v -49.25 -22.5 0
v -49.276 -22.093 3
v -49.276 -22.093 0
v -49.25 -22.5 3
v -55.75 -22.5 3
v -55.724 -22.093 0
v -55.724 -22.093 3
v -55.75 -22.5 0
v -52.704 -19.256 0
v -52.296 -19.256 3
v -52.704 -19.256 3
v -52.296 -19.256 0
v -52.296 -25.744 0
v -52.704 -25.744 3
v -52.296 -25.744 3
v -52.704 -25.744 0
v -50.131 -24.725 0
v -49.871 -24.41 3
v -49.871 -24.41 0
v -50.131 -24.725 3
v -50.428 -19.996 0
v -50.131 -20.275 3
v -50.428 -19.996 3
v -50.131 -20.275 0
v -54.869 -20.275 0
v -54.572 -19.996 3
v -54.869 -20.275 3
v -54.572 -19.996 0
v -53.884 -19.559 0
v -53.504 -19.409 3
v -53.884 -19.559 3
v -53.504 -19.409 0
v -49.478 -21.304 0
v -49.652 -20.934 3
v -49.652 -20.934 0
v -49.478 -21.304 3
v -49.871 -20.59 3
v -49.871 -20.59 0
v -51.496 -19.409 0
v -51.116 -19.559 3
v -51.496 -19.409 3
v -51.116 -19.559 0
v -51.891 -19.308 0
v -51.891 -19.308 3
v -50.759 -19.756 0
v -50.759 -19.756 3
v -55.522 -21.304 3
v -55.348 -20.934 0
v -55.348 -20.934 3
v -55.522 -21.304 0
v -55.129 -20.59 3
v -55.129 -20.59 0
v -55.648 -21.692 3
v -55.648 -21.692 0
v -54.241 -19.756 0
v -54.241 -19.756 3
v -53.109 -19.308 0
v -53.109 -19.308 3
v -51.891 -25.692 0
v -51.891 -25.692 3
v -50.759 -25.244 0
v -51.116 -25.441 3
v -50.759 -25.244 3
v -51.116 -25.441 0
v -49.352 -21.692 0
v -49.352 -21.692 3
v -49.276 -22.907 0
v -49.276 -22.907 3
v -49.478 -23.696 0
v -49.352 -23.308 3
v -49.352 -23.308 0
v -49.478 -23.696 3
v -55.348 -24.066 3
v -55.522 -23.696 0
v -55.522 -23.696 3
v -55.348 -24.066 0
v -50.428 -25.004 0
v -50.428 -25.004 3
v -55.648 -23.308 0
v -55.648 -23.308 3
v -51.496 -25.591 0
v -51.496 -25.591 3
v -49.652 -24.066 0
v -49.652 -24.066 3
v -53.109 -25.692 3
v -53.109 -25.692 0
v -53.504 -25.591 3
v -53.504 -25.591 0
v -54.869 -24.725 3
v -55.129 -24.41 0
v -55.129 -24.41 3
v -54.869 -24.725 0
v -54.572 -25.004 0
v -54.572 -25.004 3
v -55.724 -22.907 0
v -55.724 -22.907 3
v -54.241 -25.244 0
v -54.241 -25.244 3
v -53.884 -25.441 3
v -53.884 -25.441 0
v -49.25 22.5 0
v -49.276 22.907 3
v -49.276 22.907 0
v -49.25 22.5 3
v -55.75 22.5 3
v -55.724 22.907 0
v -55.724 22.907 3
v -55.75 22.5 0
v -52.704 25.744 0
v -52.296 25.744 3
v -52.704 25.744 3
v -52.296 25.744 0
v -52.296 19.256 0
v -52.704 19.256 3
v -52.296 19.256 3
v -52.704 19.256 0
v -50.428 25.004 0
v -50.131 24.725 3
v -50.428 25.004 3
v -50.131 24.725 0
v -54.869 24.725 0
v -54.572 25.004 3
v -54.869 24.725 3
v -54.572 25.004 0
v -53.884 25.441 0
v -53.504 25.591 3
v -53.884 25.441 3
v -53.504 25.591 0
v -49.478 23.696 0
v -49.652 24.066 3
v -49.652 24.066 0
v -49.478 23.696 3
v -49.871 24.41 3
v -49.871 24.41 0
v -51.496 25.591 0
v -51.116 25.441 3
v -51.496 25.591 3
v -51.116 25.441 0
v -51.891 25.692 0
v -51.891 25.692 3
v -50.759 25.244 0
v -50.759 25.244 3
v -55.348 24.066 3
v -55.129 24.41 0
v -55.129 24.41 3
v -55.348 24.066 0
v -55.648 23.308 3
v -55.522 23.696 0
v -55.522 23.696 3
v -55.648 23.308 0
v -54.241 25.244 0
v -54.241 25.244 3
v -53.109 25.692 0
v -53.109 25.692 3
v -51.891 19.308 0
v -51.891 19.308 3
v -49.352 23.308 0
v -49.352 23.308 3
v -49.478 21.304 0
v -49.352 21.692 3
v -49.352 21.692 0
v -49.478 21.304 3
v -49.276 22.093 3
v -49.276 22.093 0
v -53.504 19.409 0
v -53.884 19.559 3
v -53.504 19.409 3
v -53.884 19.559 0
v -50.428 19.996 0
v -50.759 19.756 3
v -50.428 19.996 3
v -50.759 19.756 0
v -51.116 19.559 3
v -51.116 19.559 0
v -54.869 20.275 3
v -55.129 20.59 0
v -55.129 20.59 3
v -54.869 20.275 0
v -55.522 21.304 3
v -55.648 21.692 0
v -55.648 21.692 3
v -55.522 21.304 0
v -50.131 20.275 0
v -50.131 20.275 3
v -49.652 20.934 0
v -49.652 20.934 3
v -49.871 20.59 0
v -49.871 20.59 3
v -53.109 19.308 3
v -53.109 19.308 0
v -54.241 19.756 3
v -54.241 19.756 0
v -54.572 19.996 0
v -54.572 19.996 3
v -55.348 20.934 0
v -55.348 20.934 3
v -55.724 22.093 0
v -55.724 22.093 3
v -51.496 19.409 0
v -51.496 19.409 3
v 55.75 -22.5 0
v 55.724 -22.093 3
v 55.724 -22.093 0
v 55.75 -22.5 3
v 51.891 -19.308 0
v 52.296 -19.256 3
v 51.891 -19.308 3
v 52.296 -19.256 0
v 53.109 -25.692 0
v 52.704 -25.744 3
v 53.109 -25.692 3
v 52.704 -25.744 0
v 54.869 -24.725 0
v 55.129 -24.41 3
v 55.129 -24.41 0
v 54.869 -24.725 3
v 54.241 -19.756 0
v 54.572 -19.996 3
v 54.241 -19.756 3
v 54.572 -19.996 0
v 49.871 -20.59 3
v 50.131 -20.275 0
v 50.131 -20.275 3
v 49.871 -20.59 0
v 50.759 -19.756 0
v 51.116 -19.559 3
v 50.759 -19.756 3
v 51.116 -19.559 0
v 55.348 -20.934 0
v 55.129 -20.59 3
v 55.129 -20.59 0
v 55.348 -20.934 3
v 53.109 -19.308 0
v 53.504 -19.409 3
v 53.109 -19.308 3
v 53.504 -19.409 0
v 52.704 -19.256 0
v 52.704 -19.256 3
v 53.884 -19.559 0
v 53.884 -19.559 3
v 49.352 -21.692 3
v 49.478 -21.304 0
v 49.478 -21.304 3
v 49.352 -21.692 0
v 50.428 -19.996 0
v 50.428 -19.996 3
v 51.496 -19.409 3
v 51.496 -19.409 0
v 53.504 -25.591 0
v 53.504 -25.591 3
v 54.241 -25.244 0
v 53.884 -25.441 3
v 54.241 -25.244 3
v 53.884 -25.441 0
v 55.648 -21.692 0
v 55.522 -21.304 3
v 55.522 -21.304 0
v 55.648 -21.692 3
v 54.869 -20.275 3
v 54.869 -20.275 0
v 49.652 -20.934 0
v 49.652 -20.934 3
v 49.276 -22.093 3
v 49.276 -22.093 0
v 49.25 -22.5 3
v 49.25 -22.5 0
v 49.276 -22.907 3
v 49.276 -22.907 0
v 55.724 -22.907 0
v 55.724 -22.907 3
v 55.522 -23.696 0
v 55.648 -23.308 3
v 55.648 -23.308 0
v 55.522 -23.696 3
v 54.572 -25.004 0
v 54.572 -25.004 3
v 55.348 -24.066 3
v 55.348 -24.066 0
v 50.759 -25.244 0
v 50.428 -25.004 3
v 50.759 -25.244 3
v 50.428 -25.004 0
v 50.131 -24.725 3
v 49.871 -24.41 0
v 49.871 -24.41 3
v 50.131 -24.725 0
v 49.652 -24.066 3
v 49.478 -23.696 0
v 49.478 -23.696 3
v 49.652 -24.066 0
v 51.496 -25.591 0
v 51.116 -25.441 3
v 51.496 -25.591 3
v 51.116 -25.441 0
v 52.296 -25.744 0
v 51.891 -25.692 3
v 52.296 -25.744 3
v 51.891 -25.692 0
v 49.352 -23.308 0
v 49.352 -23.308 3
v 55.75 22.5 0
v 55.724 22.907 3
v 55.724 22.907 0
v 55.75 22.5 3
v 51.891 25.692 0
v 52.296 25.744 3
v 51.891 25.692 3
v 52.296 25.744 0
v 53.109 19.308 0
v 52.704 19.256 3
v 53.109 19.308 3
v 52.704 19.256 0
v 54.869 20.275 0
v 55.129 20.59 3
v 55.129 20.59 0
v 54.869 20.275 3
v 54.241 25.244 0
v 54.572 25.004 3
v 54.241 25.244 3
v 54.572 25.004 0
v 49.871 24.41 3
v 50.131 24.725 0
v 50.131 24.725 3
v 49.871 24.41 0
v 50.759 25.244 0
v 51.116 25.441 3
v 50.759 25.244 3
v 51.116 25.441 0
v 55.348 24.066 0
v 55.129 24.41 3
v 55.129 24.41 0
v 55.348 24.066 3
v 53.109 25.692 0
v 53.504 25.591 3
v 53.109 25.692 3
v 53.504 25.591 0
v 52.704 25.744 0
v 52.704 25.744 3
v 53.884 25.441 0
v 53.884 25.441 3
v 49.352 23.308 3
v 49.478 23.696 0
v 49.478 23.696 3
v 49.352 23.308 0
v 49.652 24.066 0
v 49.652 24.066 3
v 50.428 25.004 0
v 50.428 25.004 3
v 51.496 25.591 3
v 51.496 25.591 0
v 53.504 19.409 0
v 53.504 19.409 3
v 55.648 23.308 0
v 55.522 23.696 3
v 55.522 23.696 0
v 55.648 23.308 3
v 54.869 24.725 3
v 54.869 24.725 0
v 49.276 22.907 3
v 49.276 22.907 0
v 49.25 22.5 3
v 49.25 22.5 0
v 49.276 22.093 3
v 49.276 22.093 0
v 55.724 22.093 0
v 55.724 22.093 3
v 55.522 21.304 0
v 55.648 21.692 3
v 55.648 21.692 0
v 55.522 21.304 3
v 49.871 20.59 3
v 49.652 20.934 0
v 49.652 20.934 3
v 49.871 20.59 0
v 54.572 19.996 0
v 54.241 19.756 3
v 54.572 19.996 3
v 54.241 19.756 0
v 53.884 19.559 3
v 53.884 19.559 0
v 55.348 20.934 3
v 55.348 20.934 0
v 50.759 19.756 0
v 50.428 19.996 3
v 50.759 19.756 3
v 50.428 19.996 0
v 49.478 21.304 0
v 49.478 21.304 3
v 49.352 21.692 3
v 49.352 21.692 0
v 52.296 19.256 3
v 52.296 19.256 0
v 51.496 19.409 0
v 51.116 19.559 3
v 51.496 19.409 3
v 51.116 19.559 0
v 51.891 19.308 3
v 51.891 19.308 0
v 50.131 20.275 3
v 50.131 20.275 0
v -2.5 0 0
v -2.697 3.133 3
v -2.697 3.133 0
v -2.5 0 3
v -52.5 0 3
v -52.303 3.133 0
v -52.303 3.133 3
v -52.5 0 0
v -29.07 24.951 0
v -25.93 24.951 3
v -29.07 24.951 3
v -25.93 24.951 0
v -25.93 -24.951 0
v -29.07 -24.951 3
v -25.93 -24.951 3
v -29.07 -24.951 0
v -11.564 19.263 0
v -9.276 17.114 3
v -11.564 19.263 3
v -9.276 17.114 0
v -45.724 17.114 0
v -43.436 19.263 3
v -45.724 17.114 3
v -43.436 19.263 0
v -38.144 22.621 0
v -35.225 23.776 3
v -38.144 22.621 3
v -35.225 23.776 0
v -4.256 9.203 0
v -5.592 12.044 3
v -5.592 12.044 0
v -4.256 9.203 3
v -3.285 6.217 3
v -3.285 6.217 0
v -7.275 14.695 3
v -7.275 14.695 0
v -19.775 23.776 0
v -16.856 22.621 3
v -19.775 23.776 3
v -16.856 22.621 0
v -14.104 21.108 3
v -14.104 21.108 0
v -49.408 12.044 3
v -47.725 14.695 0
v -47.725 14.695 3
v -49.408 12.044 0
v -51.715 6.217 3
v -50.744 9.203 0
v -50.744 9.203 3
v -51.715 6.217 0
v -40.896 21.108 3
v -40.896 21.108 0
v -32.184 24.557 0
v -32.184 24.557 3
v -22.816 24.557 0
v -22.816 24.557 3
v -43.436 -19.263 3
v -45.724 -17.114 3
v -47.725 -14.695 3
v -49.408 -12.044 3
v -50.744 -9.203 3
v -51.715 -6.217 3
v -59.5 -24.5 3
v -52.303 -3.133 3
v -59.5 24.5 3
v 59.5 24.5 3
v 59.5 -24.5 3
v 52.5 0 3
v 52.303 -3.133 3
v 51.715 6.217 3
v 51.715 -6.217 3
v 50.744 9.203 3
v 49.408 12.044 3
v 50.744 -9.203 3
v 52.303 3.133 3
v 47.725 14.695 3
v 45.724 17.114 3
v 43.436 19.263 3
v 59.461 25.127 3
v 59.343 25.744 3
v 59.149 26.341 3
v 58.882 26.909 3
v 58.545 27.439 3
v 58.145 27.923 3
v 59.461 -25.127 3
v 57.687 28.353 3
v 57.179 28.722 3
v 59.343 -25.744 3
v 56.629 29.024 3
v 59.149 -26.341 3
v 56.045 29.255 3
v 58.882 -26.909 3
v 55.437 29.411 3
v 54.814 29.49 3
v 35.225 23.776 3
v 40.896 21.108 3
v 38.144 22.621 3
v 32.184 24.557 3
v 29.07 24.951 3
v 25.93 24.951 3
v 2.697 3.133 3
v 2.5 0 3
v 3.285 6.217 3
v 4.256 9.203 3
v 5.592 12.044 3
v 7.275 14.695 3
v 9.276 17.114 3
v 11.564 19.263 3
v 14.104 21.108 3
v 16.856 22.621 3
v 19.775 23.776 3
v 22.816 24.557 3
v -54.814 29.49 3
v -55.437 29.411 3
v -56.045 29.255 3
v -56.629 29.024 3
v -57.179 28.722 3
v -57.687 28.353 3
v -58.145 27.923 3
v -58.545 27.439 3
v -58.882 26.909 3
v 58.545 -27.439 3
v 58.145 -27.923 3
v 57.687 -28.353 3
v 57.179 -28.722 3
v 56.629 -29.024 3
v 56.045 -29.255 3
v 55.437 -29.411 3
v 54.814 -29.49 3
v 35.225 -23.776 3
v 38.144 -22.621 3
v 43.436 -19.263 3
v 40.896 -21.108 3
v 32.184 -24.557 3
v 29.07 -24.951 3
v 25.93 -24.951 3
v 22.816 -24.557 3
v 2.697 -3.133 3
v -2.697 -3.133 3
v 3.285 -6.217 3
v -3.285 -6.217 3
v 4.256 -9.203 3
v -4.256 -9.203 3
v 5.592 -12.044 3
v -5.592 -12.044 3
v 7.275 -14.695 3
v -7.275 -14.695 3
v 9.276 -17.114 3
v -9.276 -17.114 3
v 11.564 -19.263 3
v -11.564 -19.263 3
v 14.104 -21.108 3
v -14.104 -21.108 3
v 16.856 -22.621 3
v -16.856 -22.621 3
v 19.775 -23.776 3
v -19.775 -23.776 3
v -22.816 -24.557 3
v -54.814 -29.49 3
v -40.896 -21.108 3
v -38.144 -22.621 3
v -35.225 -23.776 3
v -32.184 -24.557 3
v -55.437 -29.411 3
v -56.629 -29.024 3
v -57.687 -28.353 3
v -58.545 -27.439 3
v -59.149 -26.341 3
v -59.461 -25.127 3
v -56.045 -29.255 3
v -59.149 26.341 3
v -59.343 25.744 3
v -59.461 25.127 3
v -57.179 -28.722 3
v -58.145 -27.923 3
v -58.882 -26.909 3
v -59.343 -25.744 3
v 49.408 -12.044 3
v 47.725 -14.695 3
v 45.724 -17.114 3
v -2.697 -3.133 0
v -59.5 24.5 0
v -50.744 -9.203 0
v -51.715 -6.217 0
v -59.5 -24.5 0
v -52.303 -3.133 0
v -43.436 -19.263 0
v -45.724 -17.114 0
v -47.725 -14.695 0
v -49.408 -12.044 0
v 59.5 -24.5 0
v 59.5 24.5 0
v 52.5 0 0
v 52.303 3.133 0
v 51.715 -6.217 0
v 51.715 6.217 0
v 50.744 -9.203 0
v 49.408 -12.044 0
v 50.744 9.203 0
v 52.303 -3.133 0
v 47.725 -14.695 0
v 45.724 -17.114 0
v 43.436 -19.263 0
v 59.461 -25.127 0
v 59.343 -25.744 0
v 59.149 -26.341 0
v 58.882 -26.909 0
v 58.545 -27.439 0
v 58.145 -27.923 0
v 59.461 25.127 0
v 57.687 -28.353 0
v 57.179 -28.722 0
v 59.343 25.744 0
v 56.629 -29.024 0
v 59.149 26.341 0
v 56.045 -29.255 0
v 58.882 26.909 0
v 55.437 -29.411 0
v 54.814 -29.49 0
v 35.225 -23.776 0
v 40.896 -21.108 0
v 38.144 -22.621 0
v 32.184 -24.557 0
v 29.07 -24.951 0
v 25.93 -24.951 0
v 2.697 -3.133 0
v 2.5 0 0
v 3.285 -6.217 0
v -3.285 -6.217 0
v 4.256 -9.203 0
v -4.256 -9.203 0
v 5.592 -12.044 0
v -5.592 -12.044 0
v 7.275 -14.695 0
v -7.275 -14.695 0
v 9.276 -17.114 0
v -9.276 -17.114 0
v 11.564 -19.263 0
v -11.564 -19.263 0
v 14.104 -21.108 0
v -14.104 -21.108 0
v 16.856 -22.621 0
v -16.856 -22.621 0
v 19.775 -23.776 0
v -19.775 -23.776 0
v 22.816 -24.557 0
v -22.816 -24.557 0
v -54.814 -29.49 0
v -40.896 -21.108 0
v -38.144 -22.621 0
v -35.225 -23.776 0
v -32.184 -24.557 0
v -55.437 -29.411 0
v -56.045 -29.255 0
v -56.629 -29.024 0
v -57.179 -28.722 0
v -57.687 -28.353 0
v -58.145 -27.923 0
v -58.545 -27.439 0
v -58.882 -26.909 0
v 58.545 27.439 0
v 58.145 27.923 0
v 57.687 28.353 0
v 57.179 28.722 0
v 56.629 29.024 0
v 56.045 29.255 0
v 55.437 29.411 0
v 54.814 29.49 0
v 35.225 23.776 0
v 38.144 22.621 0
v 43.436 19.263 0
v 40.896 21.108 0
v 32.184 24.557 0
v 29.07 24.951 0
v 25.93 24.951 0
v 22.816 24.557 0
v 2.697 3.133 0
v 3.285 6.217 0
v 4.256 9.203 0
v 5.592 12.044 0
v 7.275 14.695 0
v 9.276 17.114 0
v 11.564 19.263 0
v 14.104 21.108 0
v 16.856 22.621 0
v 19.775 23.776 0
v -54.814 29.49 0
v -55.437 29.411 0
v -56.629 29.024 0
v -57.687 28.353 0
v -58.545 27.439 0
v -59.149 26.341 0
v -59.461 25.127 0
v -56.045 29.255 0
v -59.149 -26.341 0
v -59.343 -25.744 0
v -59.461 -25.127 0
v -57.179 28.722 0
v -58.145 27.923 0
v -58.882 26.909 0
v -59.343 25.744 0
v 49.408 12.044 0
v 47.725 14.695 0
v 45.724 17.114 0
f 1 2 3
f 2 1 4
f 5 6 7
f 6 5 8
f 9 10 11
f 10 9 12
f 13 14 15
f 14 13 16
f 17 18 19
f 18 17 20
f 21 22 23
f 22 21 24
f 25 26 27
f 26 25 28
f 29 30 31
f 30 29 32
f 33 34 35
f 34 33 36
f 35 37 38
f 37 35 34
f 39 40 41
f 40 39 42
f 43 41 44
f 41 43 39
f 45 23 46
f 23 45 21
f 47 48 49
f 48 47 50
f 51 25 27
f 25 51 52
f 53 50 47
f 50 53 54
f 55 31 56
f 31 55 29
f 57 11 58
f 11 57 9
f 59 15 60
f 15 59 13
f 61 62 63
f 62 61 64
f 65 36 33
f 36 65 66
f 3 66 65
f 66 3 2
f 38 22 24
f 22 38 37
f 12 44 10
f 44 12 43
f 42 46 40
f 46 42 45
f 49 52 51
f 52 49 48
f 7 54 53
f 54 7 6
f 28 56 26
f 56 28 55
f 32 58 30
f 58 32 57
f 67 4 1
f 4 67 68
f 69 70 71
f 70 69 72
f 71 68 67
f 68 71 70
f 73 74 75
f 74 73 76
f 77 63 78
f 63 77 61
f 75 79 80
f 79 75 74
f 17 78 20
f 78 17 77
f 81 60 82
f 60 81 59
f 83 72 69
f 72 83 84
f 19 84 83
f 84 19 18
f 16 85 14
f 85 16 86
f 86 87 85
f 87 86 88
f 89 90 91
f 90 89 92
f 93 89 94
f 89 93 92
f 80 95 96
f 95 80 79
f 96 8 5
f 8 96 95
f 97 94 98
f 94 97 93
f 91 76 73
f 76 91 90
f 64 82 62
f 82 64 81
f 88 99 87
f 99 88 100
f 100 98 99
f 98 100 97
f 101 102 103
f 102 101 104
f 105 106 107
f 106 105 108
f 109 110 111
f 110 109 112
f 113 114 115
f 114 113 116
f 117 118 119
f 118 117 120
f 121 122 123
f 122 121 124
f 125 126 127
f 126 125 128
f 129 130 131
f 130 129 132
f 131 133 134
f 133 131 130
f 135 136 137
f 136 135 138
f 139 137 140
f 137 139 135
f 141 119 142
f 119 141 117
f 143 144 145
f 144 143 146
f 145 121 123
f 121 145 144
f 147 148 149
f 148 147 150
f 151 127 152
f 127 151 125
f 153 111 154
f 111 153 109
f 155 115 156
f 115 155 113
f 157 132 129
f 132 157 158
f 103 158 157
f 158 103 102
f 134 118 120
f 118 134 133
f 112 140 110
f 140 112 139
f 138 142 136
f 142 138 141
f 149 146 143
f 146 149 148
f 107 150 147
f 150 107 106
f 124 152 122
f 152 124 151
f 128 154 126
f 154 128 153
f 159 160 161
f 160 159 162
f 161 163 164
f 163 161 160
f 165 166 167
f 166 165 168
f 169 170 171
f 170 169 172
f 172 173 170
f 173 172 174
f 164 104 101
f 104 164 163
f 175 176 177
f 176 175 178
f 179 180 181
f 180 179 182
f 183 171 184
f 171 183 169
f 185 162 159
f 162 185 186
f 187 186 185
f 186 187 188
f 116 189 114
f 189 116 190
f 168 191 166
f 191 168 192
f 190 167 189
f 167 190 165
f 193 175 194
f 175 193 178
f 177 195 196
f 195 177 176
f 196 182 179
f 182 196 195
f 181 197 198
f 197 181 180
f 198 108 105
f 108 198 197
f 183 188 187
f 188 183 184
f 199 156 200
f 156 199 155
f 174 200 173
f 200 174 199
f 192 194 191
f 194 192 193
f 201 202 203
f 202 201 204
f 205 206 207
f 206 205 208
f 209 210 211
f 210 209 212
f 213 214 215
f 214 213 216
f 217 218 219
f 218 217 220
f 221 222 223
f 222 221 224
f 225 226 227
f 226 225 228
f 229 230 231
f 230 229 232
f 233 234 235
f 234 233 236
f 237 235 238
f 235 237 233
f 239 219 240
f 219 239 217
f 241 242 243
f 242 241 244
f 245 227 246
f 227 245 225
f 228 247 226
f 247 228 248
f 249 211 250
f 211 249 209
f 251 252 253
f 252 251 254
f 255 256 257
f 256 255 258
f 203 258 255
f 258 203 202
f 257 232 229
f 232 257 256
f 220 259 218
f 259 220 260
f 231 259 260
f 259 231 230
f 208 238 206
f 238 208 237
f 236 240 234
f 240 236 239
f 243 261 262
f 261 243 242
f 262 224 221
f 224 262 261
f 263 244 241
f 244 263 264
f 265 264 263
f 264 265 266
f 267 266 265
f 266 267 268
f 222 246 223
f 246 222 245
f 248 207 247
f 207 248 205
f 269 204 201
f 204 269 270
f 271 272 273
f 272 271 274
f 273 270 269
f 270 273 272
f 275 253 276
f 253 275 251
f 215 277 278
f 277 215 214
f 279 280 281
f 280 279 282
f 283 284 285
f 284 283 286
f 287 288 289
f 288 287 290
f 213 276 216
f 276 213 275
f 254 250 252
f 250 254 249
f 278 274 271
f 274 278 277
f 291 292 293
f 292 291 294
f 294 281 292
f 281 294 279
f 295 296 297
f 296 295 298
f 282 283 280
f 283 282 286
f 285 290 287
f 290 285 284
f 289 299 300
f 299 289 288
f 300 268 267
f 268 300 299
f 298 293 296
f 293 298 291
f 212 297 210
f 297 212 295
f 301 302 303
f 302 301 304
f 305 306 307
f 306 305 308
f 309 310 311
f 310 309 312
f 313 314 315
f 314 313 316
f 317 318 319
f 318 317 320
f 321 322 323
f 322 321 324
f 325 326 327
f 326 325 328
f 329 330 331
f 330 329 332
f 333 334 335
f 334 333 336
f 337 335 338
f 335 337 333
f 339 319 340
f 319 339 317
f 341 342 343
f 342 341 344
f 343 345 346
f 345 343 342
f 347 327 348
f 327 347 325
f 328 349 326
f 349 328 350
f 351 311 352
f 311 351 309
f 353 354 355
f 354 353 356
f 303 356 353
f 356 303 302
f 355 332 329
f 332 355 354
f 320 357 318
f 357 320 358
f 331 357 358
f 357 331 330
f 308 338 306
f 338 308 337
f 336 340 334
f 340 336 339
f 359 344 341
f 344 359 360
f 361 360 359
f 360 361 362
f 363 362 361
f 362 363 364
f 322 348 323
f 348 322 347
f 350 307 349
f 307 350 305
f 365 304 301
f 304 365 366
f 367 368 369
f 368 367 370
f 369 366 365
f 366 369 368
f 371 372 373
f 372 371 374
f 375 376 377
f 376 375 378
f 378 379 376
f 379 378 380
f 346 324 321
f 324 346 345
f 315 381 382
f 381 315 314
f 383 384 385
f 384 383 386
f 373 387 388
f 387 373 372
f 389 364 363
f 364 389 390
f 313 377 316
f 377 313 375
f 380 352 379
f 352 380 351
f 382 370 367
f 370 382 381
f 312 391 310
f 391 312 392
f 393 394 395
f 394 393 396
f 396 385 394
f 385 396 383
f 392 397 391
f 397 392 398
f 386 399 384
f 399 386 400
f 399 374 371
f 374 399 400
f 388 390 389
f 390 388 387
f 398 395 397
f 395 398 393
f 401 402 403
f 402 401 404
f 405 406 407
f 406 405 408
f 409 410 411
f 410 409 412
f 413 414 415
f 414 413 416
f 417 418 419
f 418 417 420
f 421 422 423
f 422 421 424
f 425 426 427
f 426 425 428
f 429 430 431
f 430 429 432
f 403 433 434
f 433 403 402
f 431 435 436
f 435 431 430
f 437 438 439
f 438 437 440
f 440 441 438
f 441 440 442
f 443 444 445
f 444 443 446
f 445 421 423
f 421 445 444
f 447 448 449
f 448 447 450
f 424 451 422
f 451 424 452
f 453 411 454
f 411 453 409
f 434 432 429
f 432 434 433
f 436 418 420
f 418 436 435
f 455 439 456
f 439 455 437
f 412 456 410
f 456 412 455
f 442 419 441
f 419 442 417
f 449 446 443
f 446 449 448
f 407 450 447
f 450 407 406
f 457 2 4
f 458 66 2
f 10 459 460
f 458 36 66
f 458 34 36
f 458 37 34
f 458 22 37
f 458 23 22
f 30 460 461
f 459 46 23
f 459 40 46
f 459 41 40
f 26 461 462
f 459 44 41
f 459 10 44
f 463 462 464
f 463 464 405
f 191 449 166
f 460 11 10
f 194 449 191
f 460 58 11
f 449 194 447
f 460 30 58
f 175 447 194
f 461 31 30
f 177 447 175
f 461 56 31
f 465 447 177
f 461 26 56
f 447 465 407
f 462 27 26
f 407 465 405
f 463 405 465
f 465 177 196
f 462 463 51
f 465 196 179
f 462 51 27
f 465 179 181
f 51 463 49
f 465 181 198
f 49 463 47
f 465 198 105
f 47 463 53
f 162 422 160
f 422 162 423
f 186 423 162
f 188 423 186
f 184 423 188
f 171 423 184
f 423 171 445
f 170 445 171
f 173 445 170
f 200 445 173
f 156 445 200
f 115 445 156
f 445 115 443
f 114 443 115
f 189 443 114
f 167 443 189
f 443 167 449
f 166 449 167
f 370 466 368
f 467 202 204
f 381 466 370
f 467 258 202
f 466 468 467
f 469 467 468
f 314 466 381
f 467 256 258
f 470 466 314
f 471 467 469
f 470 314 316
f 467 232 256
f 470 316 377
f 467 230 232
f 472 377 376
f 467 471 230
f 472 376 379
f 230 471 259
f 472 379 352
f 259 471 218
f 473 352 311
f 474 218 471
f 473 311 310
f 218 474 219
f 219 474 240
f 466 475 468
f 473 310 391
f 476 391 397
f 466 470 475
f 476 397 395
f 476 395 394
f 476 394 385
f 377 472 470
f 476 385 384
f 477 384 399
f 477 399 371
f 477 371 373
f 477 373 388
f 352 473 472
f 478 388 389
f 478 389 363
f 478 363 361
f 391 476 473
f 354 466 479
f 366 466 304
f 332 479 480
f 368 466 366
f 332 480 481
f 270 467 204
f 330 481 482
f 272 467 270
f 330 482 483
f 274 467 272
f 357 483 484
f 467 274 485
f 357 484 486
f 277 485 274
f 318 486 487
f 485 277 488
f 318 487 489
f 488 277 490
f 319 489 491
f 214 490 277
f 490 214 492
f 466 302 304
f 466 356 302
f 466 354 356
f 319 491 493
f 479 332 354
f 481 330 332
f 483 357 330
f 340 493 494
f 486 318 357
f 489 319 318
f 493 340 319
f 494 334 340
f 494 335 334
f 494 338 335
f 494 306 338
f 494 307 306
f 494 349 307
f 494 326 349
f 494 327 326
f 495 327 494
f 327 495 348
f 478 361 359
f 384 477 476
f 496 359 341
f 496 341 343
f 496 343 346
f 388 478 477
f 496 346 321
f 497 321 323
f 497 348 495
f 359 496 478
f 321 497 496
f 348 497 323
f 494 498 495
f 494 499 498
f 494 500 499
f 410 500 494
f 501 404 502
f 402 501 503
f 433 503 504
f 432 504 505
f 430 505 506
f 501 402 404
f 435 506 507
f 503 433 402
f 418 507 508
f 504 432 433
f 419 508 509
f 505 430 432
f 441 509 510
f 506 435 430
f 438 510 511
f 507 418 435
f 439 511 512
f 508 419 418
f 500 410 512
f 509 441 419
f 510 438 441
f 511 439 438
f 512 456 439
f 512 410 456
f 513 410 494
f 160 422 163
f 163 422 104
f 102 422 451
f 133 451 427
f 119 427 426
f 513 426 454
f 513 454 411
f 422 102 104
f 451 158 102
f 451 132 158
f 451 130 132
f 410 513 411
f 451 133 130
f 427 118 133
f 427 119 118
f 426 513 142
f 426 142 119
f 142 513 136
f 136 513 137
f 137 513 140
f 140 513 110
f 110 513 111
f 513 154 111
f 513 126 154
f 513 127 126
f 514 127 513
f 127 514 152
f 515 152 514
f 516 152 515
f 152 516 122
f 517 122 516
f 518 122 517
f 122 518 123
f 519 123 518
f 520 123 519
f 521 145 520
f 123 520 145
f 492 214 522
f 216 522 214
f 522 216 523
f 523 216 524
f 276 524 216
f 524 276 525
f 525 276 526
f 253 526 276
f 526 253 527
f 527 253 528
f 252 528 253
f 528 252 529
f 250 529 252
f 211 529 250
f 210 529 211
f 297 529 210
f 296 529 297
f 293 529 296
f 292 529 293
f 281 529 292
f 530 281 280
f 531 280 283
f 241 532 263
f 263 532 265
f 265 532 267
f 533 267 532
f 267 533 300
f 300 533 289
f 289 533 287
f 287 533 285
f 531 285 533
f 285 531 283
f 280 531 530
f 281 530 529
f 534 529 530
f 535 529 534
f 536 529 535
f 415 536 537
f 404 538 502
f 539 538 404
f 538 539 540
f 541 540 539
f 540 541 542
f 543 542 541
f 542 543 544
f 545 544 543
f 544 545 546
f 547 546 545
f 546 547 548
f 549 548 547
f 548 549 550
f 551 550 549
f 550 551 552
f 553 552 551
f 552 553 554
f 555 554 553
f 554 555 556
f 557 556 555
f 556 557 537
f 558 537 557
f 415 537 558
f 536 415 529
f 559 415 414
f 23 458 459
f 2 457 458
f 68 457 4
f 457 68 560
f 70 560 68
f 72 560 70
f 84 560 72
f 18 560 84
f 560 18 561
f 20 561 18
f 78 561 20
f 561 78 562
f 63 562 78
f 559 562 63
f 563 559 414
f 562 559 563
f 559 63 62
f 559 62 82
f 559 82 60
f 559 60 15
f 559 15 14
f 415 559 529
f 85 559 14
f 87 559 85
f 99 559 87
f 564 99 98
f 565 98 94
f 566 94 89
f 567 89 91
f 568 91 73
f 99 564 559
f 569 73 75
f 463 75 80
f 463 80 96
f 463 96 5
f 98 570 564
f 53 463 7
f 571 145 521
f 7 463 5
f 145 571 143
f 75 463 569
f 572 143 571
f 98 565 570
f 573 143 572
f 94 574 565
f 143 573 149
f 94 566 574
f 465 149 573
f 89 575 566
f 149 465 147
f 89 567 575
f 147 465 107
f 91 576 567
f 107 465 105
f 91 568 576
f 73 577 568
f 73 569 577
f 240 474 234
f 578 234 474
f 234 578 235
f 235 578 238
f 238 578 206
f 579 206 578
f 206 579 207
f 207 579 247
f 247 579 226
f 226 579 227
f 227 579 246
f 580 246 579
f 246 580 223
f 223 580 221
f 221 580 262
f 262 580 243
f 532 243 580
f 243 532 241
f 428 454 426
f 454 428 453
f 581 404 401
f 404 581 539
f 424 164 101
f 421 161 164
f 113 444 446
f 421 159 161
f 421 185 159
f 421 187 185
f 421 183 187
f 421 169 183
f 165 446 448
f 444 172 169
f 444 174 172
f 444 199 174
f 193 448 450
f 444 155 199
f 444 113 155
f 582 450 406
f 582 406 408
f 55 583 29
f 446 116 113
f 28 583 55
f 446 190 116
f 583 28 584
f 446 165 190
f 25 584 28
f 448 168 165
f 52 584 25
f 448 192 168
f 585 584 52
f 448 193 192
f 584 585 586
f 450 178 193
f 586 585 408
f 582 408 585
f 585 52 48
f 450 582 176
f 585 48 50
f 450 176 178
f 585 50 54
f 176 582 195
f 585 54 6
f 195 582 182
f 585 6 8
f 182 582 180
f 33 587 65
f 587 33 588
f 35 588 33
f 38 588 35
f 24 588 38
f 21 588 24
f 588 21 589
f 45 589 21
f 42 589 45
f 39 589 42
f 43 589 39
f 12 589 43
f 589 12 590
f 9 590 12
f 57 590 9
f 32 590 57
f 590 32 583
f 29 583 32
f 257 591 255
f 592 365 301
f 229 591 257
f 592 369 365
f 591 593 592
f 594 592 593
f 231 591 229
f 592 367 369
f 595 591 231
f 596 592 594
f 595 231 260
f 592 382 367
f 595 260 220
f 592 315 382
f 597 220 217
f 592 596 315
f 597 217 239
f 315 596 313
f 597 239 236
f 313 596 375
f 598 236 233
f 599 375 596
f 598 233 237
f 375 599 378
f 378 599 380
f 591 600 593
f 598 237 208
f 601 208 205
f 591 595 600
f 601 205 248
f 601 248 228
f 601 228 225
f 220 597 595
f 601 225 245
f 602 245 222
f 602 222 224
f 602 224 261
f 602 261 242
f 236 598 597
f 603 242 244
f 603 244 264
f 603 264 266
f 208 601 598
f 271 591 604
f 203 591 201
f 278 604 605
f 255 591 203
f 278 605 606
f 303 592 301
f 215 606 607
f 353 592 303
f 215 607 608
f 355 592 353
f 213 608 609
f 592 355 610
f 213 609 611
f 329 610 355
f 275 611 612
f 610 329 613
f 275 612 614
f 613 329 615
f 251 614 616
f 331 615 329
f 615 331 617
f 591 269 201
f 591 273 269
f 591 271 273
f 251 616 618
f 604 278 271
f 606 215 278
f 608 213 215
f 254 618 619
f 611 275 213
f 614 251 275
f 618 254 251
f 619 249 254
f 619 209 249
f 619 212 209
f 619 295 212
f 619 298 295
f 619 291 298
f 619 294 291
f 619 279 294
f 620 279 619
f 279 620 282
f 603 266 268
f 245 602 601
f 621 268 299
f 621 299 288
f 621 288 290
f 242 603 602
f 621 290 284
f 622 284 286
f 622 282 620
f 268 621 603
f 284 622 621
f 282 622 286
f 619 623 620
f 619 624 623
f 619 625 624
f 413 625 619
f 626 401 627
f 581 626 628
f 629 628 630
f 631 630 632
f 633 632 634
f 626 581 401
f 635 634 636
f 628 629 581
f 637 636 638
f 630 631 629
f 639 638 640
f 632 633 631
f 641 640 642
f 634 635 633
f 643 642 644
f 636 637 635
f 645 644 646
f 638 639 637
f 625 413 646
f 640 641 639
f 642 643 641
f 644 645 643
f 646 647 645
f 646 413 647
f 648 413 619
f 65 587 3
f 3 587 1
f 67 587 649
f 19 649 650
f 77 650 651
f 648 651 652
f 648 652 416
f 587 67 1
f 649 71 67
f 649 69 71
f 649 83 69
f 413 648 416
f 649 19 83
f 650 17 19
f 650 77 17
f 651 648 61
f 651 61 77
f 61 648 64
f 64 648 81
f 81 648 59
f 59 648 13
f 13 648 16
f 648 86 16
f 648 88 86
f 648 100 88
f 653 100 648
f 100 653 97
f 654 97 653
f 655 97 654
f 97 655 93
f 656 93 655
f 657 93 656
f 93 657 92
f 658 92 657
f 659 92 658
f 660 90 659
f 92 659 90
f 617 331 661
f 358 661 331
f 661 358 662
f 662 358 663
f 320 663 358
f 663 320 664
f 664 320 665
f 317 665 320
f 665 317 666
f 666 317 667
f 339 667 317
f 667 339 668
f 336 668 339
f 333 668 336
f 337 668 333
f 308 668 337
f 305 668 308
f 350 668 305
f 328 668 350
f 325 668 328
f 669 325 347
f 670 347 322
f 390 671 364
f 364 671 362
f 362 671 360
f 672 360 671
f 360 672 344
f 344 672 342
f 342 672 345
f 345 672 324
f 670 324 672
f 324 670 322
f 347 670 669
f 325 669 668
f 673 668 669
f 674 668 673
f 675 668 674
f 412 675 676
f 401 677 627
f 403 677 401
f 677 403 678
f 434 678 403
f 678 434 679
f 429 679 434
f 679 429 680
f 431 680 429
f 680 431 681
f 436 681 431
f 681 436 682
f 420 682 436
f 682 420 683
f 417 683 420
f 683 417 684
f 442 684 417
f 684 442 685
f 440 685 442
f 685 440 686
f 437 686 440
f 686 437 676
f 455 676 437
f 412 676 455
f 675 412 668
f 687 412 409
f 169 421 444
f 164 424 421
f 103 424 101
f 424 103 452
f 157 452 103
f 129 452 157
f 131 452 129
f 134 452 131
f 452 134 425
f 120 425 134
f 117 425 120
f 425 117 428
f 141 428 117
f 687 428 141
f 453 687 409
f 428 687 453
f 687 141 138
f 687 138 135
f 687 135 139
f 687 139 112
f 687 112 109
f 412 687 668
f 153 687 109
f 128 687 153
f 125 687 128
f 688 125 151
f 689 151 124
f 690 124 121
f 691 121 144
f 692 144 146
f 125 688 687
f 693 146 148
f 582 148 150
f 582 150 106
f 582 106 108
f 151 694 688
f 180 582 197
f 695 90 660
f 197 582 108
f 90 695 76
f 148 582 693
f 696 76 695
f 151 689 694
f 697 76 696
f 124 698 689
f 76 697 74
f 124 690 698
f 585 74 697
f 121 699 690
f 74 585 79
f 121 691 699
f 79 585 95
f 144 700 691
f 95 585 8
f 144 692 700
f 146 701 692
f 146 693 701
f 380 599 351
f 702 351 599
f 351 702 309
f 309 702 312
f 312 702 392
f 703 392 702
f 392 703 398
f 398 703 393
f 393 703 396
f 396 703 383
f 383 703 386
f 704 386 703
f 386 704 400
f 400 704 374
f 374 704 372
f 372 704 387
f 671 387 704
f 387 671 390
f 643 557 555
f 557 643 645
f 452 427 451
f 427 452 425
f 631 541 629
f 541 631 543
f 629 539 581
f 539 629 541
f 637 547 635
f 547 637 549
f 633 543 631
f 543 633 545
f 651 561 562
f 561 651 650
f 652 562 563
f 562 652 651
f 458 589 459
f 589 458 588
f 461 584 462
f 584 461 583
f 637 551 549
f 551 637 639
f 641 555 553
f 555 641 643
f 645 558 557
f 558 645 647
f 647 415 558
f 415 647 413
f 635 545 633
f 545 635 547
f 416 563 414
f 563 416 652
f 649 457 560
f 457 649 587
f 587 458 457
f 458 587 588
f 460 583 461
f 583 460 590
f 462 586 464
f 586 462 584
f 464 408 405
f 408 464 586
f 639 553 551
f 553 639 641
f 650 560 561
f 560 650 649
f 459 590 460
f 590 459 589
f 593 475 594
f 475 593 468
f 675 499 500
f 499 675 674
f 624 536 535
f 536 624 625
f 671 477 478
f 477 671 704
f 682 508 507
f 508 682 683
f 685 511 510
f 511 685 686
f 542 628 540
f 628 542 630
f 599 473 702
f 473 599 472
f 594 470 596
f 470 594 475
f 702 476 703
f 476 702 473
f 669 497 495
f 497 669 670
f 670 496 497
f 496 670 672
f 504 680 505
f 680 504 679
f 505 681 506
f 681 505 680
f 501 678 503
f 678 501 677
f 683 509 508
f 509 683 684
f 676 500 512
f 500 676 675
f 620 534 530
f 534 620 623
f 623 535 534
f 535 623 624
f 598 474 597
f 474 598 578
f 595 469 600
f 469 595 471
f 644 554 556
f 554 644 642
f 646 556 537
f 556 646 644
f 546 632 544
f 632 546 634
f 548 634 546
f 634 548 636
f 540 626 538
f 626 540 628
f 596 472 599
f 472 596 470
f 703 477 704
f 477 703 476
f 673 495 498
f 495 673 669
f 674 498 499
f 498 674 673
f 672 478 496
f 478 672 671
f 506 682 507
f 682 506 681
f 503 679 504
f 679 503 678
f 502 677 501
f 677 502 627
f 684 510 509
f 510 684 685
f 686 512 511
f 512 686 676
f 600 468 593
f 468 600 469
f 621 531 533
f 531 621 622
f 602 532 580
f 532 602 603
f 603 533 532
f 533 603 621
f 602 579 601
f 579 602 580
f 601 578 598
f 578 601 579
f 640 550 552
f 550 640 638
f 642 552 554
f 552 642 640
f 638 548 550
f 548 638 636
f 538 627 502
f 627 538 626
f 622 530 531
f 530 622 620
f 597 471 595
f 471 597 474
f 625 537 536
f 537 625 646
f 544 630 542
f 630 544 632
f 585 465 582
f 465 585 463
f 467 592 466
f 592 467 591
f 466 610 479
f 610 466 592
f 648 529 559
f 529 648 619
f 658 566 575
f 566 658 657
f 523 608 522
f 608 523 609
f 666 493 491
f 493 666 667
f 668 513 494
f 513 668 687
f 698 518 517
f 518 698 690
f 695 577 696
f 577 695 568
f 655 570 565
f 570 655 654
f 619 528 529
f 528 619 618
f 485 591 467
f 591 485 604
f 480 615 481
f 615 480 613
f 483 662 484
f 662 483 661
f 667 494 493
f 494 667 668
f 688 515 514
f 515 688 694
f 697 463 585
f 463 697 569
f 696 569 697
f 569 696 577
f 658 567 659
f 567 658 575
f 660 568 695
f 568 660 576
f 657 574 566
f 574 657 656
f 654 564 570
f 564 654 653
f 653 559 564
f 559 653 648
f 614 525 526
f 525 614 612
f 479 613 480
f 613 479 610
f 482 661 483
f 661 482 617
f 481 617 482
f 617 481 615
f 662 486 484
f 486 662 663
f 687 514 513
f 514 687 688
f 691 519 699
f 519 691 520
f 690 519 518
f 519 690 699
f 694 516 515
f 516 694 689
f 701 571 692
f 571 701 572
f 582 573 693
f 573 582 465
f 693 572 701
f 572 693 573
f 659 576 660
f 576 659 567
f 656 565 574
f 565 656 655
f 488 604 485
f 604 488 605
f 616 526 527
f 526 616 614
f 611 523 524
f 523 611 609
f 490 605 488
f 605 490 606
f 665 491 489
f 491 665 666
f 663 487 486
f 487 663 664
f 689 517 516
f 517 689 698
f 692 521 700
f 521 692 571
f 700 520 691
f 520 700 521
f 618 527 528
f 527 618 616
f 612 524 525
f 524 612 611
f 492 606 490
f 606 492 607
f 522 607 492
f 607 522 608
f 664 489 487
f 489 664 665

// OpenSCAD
$fn = 50;


difference() {
	union() {
		hull() {
			translate(v = [-54.5000000000, 24.5000000000, 0]) {
				cylinder(h = 3, r = 5);
			}
			translate(v = [54.5000000000, 24.5000000000, 0]) {
				cylinder(h = 3, r = 5);
			}
			translate(v = [-54.5000000000, -24.5000000000, 0]) {
				cylinder(h = 3, r = 5);
			}
			translate(v = [54.5000000000, -24.5000000000, 0]) {
				cylinder(h = 3, r = 5);
			}
		}
	}
	union() {
		#translate(v = [-52.5000000000, -22.5000000000, -100.0000000000]) {
			cylinder(h = 200, r = 3.2500000000);
		}
		#translate(v = [-52.5000000000, 22.5000000000, -100.0000000000]) {
			cylinder(h = 200, r = 3.2500000000);
		}
		#translate(v = [52.5000000000, -22.5000000000, -100.0000000000]) {
			cylinder(h = 200, r = 3.2500000000);
		}
		#translate(v = [52.5000000000, 22.5000000000, -100.0000000000]) {
			cylinder(h = 200, r = 3.2500000000);
		}
		#translate(v = [-27.5000000000, 0, 0]) {
			cylinder(h = 3, r = 25.0000000000);
		}
		#translate(v = [27.5000000000, 0, 0]) {
			cylinder(h = 3, r = 25.0000000000);
		}
	}
}
